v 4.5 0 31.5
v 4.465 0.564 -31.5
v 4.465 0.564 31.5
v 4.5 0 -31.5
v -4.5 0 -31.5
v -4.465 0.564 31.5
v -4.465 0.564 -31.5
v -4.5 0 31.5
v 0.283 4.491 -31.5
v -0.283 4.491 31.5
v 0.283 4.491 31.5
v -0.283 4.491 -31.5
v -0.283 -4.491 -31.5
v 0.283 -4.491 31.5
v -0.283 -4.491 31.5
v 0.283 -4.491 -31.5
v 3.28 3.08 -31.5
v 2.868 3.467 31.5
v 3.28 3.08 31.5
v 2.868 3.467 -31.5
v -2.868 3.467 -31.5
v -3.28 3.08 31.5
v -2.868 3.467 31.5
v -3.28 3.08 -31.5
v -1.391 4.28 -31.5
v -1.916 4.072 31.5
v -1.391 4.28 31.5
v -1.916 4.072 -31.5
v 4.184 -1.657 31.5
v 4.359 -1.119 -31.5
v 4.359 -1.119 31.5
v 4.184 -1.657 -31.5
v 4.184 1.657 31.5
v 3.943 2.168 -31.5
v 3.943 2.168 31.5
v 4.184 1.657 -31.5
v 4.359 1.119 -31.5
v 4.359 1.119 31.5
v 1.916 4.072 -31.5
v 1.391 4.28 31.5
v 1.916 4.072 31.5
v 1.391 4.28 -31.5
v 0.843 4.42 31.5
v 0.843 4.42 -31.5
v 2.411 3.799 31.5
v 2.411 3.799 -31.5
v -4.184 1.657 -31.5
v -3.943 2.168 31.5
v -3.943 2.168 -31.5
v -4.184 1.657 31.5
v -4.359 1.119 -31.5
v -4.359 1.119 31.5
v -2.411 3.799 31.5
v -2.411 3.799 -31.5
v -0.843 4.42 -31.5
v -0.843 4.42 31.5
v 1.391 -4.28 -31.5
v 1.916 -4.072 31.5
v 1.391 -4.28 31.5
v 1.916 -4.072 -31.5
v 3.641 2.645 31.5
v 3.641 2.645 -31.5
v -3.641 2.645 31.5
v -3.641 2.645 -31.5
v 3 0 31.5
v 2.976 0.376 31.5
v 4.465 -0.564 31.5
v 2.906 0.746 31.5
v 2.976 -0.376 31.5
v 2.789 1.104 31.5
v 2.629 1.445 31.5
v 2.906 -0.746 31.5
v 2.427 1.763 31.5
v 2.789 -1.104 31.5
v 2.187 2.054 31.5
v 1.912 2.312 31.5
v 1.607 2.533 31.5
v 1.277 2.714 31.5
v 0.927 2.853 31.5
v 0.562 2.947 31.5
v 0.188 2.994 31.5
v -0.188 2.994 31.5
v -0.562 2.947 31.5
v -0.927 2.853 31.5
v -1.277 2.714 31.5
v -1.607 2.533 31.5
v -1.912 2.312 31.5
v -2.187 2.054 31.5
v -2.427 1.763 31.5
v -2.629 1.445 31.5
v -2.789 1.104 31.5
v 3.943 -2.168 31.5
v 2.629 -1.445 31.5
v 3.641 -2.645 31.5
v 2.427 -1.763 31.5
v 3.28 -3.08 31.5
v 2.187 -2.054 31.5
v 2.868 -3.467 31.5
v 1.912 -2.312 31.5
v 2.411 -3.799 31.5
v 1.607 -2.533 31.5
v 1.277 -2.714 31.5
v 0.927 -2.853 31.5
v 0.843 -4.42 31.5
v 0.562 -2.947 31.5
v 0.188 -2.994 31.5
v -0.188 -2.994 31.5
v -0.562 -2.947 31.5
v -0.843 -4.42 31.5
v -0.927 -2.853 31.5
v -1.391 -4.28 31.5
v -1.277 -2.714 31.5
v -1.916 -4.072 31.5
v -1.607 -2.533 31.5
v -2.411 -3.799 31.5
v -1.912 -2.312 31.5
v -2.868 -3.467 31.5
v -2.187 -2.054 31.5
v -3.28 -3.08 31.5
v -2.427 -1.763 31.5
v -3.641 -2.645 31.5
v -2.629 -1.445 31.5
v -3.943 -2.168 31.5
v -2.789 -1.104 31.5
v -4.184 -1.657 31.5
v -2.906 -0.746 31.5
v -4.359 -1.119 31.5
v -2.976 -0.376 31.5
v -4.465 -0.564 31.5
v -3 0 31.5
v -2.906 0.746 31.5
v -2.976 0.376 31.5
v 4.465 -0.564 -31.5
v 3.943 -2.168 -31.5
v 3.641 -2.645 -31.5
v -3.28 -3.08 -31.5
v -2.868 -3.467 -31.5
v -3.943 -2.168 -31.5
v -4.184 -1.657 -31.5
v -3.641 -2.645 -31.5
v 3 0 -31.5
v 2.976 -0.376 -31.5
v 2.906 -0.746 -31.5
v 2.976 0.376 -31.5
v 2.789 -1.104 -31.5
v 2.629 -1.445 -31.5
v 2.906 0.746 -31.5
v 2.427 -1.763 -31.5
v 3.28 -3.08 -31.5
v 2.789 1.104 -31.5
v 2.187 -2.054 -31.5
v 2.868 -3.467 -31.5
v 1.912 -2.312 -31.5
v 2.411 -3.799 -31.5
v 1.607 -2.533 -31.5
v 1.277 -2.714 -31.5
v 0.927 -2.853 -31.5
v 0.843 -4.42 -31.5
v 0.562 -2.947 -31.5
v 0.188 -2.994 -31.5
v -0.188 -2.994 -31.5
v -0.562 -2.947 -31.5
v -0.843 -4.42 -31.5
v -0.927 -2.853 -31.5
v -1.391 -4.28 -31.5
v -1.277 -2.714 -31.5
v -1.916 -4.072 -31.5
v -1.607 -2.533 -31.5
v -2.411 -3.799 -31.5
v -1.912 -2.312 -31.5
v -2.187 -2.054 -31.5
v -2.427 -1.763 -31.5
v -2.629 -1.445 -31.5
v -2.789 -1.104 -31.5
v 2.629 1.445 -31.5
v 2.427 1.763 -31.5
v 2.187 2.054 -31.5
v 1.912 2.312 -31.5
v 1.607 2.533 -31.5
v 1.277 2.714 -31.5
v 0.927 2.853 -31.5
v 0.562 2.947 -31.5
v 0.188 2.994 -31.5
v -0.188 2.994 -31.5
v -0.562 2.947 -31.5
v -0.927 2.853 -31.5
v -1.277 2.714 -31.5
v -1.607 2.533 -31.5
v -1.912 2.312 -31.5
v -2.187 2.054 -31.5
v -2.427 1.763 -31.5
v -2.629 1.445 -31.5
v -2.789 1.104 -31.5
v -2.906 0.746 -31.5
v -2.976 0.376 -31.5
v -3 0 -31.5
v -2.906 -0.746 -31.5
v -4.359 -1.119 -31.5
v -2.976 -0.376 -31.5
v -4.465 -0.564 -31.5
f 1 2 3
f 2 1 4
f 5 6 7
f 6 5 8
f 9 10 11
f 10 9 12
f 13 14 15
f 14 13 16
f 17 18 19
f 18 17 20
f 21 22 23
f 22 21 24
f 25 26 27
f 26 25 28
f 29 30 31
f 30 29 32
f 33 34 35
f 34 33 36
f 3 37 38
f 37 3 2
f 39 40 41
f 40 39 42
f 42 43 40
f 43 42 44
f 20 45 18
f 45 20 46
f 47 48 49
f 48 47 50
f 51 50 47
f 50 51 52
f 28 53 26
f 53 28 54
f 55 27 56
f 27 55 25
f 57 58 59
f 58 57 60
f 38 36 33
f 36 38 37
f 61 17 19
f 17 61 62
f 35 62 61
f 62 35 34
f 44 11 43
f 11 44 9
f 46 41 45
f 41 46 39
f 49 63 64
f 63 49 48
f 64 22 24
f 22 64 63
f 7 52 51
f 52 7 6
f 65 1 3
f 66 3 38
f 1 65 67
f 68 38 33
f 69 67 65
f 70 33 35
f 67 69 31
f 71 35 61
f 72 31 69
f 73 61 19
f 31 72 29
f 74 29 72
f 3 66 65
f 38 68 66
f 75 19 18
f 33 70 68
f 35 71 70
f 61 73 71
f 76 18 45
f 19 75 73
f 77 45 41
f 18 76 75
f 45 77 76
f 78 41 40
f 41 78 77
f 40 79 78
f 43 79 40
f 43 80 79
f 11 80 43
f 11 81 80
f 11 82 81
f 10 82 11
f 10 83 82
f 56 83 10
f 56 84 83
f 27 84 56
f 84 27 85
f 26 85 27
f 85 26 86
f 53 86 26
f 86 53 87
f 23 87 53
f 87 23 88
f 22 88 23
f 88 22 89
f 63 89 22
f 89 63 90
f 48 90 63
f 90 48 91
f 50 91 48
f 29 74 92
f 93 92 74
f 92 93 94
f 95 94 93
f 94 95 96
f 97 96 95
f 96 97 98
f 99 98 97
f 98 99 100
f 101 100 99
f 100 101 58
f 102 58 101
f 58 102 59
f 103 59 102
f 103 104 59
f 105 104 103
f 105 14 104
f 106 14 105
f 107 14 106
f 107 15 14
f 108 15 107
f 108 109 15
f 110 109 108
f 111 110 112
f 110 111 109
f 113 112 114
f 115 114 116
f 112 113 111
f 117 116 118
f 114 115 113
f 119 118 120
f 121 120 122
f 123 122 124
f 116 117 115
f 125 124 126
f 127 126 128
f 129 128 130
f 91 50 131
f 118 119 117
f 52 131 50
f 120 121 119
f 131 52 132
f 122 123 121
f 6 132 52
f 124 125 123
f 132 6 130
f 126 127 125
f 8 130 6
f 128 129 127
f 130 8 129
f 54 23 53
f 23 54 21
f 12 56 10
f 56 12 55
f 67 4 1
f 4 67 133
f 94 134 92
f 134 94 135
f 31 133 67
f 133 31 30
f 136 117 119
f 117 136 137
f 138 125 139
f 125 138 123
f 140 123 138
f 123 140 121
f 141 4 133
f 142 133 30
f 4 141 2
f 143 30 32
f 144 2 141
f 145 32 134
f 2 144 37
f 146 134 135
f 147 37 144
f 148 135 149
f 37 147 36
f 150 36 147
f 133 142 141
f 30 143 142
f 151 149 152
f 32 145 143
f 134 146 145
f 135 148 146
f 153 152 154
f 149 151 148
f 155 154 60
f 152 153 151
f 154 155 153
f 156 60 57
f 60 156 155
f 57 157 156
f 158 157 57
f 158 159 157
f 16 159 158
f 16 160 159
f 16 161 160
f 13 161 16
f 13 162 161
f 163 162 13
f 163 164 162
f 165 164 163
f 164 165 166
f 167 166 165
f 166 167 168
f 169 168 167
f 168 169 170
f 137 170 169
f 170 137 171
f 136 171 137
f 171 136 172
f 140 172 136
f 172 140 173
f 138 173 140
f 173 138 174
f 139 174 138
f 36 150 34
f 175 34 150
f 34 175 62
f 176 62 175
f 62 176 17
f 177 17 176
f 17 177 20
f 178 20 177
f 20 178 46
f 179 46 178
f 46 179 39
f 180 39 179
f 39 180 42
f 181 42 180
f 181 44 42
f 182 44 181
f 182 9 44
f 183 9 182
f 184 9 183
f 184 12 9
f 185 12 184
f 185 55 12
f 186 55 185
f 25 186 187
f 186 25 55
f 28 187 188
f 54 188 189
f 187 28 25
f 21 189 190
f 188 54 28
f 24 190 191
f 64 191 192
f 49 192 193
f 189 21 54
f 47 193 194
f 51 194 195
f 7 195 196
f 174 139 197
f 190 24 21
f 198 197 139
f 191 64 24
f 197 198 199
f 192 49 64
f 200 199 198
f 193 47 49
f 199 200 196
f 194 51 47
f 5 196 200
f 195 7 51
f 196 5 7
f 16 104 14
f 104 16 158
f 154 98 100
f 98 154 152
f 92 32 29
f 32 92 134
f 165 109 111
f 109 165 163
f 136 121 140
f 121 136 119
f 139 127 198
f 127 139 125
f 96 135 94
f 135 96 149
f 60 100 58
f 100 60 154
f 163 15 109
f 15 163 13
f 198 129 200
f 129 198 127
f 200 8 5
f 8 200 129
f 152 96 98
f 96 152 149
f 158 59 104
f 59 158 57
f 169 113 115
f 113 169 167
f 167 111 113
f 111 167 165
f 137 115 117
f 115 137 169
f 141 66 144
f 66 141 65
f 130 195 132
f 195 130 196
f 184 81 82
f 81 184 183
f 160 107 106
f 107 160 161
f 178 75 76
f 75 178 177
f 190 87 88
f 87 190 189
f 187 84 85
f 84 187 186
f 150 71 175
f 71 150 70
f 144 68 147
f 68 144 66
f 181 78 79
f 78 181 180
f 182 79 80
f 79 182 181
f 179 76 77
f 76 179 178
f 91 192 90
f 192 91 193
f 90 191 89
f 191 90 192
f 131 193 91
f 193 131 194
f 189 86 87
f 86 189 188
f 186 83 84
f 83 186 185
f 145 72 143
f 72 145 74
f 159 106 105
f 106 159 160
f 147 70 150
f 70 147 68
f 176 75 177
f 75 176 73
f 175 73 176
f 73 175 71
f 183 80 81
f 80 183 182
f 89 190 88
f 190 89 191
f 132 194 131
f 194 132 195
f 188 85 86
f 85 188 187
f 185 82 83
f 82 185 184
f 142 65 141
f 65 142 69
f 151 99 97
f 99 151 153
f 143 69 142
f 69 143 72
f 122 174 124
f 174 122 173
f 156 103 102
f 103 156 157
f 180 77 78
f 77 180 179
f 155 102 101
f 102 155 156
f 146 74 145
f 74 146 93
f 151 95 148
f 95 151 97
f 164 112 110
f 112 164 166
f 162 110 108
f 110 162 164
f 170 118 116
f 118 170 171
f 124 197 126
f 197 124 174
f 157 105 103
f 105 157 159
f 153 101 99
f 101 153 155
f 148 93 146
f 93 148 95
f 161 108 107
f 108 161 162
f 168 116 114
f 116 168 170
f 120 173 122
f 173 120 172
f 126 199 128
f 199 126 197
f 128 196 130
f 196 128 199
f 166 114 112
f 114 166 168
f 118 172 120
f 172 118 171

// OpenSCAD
$fn = 50;


difference() {
	union() {
		translate(v = [0, 0, -31.5000000000]) {
			cylinder(h = 63, r = 4.5000000000);
		}
	}
	union() {
		translate(v = [0, 0, -100.0000000000]) {
			cylinder(h = 200, r = 3.0000000000);
		}
	}
}
